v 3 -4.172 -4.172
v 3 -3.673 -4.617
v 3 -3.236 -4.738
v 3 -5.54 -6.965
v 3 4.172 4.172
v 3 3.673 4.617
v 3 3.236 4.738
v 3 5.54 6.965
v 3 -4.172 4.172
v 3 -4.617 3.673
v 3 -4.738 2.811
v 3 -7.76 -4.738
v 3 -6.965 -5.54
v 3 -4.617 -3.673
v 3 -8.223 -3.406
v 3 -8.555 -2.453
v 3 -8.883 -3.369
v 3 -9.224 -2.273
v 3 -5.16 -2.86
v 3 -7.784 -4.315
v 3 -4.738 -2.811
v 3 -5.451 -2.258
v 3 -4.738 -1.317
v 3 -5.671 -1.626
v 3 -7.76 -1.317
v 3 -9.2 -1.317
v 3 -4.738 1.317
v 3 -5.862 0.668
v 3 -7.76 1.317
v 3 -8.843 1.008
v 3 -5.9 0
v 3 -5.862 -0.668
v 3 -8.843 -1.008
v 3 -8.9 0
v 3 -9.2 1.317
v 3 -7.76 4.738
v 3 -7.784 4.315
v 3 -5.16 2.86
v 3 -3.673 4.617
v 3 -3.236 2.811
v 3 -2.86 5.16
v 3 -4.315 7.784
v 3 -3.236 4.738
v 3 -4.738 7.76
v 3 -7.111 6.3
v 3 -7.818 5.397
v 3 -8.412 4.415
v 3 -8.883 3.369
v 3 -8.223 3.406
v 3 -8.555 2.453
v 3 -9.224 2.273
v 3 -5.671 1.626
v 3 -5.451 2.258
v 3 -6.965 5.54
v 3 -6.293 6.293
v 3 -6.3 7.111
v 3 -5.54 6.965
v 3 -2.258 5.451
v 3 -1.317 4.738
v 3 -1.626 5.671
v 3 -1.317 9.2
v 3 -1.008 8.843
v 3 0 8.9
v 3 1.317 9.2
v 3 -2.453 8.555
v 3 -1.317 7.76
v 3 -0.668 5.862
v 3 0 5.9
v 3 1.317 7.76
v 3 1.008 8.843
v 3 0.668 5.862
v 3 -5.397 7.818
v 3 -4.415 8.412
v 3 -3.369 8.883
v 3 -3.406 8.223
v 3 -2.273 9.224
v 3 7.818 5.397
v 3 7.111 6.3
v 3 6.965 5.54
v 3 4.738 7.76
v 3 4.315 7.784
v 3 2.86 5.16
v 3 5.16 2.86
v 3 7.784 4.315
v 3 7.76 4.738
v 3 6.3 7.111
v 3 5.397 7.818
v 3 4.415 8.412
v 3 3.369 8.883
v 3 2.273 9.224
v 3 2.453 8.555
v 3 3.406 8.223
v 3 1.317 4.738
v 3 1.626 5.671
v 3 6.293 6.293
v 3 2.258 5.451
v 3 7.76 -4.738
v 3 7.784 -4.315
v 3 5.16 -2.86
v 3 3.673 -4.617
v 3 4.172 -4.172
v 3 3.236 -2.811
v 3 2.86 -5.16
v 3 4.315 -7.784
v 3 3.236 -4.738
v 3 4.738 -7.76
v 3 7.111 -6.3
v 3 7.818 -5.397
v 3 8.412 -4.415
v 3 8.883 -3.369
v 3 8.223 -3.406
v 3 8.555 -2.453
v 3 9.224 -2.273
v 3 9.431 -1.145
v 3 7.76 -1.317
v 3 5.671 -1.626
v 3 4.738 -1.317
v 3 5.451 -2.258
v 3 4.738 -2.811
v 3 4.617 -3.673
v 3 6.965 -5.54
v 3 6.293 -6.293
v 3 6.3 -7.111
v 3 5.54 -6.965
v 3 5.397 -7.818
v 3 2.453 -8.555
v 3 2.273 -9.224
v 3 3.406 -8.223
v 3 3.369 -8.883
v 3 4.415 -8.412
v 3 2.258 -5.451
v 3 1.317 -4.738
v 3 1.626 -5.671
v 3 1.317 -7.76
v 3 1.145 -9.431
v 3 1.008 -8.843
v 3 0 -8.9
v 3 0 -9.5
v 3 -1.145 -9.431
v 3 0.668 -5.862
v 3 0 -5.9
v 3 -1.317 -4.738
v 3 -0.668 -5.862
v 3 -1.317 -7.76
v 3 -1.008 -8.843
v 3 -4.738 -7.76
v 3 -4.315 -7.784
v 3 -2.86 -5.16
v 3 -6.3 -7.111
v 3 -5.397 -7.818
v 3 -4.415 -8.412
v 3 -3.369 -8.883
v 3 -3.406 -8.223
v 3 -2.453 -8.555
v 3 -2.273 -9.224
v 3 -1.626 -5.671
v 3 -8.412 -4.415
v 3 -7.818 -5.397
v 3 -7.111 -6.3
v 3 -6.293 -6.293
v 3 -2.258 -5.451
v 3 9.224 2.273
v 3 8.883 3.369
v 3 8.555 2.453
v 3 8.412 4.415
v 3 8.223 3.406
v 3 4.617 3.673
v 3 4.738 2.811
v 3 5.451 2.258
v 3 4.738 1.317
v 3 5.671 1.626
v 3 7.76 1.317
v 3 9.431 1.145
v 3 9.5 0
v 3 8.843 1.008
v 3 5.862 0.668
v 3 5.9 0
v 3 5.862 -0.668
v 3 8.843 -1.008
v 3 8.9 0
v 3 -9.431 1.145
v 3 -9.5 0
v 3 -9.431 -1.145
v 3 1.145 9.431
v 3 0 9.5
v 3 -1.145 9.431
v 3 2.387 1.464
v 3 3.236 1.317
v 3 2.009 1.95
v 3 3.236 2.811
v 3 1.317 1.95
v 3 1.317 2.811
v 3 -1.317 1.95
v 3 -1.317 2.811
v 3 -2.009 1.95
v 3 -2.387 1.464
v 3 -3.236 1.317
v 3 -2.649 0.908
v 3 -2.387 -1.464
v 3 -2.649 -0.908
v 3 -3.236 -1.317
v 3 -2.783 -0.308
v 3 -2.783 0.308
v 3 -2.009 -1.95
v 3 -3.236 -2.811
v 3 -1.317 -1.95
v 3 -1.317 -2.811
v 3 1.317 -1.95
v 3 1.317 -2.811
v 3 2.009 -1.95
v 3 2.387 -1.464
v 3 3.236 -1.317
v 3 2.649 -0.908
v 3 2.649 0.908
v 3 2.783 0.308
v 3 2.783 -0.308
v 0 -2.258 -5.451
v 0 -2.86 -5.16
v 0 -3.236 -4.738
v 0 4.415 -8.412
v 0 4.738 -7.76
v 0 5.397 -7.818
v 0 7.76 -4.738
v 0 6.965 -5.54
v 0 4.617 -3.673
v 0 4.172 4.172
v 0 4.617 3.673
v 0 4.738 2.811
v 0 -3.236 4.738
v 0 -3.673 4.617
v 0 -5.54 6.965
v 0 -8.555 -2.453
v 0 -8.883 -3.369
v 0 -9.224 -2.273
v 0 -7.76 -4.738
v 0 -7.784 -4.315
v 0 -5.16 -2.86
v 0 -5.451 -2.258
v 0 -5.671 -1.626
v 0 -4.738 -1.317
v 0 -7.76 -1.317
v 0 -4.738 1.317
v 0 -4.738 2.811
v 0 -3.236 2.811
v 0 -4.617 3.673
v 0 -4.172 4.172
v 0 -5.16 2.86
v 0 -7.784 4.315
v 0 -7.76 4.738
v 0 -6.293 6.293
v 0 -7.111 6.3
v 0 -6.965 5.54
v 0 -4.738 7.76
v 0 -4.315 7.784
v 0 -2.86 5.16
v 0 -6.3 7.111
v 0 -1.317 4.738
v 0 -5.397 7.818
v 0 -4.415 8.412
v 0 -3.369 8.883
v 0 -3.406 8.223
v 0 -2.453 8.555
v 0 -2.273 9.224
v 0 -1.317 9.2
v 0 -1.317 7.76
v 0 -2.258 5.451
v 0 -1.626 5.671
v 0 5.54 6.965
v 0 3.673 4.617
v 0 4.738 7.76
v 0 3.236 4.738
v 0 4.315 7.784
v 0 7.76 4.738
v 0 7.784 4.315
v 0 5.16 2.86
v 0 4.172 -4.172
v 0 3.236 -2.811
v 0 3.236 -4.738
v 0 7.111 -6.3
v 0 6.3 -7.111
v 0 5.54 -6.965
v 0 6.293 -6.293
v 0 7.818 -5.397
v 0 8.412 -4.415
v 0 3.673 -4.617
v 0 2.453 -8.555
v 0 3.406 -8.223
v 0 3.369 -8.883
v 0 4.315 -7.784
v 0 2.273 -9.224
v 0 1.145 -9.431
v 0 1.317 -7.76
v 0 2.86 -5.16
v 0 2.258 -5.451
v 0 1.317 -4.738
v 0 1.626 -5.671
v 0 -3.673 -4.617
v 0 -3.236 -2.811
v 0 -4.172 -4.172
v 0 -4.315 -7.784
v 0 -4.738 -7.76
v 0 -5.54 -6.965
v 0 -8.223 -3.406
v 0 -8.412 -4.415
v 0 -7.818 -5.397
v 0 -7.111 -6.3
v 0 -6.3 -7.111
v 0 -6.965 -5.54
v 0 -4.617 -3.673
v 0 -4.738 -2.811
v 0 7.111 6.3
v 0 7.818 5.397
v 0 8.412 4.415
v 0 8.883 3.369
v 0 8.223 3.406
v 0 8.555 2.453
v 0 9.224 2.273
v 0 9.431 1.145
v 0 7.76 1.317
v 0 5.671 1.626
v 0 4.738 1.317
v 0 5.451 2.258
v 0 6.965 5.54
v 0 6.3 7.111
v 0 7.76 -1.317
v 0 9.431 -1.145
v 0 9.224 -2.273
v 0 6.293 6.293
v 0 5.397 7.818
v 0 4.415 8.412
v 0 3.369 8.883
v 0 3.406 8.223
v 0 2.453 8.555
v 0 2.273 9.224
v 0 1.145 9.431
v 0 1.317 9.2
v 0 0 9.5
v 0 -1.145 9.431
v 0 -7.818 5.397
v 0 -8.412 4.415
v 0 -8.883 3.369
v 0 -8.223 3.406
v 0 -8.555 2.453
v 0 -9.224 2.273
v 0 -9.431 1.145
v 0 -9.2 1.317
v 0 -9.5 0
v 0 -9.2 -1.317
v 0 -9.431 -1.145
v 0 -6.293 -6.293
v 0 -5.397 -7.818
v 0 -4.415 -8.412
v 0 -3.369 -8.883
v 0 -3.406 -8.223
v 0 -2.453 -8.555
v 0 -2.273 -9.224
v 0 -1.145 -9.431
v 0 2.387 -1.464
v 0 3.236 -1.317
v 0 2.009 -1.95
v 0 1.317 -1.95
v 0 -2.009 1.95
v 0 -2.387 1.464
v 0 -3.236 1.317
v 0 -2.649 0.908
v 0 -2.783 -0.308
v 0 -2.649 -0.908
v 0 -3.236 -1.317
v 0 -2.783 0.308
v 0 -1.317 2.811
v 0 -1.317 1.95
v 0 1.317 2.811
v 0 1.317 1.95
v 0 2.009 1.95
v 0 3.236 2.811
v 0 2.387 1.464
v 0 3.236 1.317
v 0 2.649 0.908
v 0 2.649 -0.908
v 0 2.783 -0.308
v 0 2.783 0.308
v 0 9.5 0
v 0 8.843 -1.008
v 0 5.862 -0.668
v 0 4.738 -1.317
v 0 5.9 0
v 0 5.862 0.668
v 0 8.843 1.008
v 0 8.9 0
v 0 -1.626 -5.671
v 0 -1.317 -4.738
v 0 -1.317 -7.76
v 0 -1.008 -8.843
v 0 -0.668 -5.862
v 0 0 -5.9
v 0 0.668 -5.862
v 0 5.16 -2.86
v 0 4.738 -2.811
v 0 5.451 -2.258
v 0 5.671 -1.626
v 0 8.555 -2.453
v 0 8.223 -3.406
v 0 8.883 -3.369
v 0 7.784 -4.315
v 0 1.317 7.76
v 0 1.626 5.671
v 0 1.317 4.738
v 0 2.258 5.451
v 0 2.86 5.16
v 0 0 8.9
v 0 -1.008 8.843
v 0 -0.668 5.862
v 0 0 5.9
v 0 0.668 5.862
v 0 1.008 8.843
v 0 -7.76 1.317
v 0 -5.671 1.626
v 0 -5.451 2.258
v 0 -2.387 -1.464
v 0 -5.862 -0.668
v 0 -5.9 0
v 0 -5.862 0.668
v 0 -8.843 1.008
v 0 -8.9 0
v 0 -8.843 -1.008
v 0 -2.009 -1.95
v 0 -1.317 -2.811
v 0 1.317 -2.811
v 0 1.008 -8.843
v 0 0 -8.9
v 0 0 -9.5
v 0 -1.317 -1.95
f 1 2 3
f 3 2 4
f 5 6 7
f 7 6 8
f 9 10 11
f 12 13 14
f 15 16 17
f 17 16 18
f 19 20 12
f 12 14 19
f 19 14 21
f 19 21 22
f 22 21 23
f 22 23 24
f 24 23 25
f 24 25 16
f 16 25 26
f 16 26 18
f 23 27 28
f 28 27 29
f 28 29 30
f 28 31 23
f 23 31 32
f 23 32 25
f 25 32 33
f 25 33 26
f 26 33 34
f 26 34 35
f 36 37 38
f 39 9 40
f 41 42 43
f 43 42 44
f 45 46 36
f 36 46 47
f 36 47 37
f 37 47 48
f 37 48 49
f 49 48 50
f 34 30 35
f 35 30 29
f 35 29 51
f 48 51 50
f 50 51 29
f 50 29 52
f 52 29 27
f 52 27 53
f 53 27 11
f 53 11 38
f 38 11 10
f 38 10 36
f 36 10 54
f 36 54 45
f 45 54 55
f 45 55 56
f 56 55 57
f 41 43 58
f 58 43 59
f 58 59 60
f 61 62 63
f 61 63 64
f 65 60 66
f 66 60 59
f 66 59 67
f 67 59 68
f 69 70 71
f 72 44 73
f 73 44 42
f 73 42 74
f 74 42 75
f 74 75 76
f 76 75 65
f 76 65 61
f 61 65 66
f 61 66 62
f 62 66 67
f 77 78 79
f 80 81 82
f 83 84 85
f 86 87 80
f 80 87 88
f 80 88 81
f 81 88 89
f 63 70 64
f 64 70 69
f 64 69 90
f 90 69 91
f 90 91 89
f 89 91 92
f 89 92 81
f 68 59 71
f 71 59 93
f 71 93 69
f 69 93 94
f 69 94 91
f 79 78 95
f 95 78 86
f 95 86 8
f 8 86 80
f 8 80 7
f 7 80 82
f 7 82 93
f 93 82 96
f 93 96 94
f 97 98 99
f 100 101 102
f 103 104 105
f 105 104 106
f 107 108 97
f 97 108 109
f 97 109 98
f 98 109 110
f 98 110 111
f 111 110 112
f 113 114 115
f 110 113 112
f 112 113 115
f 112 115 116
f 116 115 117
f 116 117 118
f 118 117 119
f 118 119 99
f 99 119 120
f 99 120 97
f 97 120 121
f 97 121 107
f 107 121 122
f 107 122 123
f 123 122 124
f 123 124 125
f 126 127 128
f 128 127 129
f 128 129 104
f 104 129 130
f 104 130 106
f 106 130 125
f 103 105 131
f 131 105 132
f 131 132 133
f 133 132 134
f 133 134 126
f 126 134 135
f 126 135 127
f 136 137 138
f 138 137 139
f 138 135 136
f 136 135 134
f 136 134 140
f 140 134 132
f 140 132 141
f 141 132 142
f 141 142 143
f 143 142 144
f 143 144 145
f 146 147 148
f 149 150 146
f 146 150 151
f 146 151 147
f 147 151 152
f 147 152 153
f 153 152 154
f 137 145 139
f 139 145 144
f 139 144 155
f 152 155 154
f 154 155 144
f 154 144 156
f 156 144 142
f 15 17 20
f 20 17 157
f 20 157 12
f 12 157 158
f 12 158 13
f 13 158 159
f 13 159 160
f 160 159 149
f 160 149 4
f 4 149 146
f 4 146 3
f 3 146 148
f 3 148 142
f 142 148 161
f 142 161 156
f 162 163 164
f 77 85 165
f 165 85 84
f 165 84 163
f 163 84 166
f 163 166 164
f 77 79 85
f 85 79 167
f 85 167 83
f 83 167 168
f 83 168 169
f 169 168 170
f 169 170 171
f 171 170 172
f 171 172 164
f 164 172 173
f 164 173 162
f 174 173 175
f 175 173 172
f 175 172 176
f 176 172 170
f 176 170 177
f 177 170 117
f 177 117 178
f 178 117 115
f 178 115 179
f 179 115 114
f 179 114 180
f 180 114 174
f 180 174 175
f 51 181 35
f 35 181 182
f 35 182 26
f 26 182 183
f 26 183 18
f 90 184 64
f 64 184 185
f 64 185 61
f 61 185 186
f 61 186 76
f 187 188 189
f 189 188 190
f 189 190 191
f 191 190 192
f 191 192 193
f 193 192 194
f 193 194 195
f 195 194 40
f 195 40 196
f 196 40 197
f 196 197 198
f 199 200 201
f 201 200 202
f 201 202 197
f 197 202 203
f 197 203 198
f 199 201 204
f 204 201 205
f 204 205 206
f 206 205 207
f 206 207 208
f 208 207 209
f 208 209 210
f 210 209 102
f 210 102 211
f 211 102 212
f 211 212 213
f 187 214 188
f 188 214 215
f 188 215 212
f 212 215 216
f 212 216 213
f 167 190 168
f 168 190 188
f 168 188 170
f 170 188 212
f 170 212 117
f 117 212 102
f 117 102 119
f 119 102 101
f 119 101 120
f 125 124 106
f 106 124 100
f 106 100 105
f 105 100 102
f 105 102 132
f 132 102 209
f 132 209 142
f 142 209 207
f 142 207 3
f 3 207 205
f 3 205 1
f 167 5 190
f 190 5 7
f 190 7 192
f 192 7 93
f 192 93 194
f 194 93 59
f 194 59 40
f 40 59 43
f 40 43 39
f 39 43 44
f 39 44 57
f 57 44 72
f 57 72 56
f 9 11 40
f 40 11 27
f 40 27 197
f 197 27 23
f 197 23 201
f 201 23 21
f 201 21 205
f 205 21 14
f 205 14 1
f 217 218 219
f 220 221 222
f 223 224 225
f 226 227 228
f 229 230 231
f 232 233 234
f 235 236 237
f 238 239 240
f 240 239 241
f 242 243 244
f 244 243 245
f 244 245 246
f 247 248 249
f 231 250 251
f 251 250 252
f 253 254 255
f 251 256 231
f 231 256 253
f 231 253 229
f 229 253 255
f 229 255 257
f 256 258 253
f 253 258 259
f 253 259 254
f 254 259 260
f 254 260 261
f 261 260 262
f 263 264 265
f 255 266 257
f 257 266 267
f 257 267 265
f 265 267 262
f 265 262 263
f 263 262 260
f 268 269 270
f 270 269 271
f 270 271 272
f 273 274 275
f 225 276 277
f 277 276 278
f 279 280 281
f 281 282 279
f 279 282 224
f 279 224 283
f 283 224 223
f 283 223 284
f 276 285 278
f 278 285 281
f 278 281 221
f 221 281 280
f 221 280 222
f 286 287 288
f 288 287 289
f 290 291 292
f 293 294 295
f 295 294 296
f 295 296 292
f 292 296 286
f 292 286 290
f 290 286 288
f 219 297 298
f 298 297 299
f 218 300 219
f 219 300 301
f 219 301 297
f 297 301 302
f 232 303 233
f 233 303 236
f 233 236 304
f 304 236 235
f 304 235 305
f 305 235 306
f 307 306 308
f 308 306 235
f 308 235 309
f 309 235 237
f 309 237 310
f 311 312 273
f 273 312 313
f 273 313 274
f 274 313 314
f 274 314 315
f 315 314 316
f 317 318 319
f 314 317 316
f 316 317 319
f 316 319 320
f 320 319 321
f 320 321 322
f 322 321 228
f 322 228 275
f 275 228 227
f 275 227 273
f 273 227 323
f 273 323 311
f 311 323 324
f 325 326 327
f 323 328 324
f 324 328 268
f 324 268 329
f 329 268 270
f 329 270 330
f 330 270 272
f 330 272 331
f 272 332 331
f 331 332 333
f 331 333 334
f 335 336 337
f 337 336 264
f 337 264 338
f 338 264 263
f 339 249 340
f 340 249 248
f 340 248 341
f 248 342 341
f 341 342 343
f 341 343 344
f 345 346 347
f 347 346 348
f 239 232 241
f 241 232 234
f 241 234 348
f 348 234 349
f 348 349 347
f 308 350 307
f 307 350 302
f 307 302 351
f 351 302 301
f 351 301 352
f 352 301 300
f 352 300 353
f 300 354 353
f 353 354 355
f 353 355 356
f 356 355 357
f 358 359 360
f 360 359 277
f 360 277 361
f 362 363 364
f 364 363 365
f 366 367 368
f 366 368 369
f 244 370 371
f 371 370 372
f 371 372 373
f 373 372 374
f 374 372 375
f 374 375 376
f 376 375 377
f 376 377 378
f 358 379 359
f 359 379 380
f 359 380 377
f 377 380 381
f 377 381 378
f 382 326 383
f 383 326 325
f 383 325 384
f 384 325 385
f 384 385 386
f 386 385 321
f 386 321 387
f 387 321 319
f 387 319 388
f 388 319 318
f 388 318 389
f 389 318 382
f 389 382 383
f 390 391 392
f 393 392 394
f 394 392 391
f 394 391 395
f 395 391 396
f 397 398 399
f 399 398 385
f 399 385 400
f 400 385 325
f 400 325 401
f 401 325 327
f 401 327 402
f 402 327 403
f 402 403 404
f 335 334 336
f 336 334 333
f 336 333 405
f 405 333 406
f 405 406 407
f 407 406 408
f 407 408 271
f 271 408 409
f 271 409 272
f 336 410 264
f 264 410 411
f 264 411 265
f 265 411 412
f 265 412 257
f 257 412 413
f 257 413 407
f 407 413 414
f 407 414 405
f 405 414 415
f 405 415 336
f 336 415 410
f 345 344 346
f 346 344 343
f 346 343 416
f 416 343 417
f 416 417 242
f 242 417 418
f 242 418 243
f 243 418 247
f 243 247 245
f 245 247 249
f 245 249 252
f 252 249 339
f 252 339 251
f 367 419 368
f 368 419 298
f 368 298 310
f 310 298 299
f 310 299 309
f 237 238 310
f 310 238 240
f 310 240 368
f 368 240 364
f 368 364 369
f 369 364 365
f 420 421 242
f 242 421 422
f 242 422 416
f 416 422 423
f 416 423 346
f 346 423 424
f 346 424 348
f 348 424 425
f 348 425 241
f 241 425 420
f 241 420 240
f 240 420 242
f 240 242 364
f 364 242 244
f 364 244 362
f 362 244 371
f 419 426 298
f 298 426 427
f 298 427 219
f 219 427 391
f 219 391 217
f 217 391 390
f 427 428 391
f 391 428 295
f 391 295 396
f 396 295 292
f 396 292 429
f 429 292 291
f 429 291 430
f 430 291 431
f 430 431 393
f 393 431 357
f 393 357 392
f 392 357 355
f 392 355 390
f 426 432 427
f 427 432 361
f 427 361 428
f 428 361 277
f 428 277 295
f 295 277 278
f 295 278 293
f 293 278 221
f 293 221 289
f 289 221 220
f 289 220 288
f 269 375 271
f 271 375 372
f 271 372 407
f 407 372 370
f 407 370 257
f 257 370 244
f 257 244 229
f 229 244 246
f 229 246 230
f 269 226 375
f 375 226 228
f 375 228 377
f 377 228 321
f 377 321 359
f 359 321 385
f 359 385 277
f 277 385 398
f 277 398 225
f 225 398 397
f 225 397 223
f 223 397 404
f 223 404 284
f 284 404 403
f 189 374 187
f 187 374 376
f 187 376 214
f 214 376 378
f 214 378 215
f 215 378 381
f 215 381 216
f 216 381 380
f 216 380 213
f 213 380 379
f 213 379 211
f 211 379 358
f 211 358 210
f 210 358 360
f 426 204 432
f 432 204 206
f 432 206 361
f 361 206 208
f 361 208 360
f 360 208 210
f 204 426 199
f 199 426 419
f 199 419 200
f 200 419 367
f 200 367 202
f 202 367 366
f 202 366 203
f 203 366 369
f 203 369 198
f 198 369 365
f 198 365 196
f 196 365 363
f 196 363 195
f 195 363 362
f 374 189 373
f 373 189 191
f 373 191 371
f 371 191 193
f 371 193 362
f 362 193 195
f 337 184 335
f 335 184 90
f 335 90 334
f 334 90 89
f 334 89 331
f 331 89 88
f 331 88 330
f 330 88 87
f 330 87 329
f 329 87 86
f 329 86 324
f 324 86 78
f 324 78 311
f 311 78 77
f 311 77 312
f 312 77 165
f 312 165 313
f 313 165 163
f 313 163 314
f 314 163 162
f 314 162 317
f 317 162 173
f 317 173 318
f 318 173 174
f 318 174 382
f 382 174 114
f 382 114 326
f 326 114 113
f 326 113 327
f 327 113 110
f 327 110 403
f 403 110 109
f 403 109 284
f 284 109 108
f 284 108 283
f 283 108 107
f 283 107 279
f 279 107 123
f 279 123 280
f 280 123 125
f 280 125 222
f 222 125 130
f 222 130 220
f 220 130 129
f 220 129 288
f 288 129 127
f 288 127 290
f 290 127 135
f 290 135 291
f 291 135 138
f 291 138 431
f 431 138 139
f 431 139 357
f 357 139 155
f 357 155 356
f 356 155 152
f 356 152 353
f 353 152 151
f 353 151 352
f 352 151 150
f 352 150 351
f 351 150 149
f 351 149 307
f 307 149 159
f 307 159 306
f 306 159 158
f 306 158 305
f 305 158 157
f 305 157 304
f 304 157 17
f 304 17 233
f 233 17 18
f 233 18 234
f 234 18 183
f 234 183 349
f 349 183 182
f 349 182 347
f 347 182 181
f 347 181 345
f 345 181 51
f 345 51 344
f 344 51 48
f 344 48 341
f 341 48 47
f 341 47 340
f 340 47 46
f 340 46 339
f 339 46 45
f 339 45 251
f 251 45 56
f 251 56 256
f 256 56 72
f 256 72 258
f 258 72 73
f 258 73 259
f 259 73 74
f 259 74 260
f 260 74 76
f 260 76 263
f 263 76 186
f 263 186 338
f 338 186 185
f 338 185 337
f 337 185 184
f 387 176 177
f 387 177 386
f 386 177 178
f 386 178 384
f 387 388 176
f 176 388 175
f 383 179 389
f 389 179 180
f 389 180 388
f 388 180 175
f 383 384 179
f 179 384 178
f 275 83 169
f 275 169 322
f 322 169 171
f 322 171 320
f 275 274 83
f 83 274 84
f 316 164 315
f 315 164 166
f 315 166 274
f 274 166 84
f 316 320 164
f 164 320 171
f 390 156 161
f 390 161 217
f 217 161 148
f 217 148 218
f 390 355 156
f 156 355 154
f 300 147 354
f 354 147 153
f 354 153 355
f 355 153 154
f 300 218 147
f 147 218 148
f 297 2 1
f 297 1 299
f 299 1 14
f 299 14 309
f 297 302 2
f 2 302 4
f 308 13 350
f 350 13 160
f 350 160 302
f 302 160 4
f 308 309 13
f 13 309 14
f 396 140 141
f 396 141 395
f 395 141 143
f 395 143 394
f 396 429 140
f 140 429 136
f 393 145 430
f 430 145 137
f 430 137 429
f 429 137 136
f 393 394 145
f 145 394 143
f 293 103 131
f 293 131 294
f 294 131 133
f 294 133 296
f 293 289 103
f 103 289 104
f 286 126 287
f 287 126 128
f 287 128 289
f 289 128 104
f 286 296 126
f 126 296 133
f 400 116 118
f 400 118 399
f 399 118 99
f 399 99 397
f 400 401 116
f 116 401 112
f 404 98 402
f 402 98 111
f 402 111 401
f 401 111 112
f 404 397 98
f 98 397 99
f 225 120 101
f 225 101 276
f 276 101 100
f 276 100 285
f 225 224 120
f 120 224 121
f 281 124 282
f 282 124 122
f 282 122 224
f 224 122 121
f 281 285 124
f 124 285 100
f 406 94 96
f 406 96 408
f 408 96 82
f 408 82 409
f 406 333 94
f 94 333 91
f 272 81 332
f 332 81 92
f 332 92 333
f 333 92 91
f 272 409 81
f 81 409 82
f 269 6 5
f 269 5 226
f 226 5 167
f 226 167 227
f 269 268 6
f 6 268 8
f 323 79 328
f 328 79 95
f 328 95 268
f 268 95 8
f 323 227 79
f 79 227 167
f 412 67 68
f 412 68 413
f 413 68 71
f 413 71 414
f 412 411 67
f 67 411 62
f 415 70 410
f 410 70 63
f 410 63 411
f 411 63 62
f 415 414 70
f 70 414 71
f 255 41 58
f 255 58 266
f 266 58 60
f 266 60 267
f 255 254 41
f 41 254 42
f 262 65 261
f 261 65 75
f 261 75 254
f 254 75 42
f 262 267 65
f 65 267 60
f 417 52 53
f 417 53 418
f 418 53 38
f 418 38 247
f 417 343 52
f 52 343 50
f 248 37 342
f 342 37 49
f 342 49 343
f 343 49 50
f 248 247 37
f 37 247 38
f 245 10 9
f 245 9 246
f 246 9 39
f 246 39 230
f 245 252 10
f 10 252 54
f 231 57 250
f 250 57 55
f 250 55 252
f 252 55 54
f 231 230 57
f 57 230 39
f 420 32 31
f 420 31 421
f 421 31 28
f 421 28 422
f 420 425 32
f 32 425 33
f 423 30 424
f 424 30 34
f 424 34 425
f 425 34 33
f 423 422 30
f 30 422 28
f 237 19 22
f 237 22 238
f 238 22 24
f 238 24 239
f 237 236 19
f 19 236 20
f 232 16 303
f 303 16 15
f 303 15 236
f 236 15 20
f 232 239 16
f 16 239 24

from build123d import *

# Parameters (mm, degrees)
SKETCH1_R           = 9.5
SKETCH1_R_2         = 2.8
BOSS_EXTRUDE1_DEPTH = 3
CUT_EXTRUDE2_DEPTH  = 3
CIRPATTERN1_COUNT   = 16


with BuildPart() as part:
    # Sketch1 → Boss-Extrude1 (new body)
    # profile 1 of 3: a face of its own
    with BuildSketch(Plane(origin=(0, 0, 0), x_dir=(0, 0, -1), z_dir=(1, 0, 0))):
        Circle(SKETCH1_R)
        Circle(SKETCH1_R_2, mode=Mode.SUBTRACT)
    # profile 2 of 3: a face of its own
    with BuildSketch(Plane(origin=(0, 0, 0), x_dir=(0, 0, -1), z_dir=(1, 0, 0))):
        with BuildLine():
            Line((1.95, 2.00935313), (1.95, -2.00935313))
            ThreePointArc((1.95, -2.00935313), (2.578759392, -1.090871211), (2.8, 0))
            ThreePointArc((2.8, 0), (2.578759392, 1.090871211), (1.95, 2.00935313))
        make_face()
    # profile 3 of 3: a face of its own
    with BuildSketch(Plane(origin=(0, 0, 0), x_dir=(0, 0, -1), z_dir=(1, 0, 0))):
        with BuildLine():
            ThreePointArc((-1.95, 2.00935313), (-2.8, 0), (-1.95, -2.00935313))
            Line((-1.95, -2.00935313), (-1.95, 2.00935313))
        make_face()
    extrude(amount=BOSS_EXTRUDE1_DEPTH)

    # Sketch3 → Cut-Extrude2 (cut)
    with BuildSketch(Plane(origin=(3, 0, 0), x_dir=(0, 0, -1), z_dir=(1, 0, 0))):
        with BuildLine():
            Line((-1.007508603, 8.842789516), (-0.667898961, 5.862073948))
            ThreePointArc((-0.667898961, 5.862073948), (0, 5.9), (0.667898961, 5.862073948))
            Line((0.667898961, 5.862073948), (1.007508603, 8.842789516))
            ThreePointArc((1.007508603, 8.842789516), (0, 8.9), (-1.007508603, 8.842789516))
        make_face()
    cut_extrude2 = extrude(amount=-CUT_EXTRUDE2_DEPTH, mode=Mode.SUBTRACT)

    # CirPattern1: Cut-Extrude2 ×16 about axis
    cirpattern1_axis = Axis((0, 0, 0), (1, 0, 0))
    for i in range(1, CIRPATTERN1_COUNT):
        add(cut_extrude2.rotate(cirpattern1_axis, i * 360 / CIRPATTERN1_COUNT), mode=Mode.SUBTRACT)


solid = part.part
